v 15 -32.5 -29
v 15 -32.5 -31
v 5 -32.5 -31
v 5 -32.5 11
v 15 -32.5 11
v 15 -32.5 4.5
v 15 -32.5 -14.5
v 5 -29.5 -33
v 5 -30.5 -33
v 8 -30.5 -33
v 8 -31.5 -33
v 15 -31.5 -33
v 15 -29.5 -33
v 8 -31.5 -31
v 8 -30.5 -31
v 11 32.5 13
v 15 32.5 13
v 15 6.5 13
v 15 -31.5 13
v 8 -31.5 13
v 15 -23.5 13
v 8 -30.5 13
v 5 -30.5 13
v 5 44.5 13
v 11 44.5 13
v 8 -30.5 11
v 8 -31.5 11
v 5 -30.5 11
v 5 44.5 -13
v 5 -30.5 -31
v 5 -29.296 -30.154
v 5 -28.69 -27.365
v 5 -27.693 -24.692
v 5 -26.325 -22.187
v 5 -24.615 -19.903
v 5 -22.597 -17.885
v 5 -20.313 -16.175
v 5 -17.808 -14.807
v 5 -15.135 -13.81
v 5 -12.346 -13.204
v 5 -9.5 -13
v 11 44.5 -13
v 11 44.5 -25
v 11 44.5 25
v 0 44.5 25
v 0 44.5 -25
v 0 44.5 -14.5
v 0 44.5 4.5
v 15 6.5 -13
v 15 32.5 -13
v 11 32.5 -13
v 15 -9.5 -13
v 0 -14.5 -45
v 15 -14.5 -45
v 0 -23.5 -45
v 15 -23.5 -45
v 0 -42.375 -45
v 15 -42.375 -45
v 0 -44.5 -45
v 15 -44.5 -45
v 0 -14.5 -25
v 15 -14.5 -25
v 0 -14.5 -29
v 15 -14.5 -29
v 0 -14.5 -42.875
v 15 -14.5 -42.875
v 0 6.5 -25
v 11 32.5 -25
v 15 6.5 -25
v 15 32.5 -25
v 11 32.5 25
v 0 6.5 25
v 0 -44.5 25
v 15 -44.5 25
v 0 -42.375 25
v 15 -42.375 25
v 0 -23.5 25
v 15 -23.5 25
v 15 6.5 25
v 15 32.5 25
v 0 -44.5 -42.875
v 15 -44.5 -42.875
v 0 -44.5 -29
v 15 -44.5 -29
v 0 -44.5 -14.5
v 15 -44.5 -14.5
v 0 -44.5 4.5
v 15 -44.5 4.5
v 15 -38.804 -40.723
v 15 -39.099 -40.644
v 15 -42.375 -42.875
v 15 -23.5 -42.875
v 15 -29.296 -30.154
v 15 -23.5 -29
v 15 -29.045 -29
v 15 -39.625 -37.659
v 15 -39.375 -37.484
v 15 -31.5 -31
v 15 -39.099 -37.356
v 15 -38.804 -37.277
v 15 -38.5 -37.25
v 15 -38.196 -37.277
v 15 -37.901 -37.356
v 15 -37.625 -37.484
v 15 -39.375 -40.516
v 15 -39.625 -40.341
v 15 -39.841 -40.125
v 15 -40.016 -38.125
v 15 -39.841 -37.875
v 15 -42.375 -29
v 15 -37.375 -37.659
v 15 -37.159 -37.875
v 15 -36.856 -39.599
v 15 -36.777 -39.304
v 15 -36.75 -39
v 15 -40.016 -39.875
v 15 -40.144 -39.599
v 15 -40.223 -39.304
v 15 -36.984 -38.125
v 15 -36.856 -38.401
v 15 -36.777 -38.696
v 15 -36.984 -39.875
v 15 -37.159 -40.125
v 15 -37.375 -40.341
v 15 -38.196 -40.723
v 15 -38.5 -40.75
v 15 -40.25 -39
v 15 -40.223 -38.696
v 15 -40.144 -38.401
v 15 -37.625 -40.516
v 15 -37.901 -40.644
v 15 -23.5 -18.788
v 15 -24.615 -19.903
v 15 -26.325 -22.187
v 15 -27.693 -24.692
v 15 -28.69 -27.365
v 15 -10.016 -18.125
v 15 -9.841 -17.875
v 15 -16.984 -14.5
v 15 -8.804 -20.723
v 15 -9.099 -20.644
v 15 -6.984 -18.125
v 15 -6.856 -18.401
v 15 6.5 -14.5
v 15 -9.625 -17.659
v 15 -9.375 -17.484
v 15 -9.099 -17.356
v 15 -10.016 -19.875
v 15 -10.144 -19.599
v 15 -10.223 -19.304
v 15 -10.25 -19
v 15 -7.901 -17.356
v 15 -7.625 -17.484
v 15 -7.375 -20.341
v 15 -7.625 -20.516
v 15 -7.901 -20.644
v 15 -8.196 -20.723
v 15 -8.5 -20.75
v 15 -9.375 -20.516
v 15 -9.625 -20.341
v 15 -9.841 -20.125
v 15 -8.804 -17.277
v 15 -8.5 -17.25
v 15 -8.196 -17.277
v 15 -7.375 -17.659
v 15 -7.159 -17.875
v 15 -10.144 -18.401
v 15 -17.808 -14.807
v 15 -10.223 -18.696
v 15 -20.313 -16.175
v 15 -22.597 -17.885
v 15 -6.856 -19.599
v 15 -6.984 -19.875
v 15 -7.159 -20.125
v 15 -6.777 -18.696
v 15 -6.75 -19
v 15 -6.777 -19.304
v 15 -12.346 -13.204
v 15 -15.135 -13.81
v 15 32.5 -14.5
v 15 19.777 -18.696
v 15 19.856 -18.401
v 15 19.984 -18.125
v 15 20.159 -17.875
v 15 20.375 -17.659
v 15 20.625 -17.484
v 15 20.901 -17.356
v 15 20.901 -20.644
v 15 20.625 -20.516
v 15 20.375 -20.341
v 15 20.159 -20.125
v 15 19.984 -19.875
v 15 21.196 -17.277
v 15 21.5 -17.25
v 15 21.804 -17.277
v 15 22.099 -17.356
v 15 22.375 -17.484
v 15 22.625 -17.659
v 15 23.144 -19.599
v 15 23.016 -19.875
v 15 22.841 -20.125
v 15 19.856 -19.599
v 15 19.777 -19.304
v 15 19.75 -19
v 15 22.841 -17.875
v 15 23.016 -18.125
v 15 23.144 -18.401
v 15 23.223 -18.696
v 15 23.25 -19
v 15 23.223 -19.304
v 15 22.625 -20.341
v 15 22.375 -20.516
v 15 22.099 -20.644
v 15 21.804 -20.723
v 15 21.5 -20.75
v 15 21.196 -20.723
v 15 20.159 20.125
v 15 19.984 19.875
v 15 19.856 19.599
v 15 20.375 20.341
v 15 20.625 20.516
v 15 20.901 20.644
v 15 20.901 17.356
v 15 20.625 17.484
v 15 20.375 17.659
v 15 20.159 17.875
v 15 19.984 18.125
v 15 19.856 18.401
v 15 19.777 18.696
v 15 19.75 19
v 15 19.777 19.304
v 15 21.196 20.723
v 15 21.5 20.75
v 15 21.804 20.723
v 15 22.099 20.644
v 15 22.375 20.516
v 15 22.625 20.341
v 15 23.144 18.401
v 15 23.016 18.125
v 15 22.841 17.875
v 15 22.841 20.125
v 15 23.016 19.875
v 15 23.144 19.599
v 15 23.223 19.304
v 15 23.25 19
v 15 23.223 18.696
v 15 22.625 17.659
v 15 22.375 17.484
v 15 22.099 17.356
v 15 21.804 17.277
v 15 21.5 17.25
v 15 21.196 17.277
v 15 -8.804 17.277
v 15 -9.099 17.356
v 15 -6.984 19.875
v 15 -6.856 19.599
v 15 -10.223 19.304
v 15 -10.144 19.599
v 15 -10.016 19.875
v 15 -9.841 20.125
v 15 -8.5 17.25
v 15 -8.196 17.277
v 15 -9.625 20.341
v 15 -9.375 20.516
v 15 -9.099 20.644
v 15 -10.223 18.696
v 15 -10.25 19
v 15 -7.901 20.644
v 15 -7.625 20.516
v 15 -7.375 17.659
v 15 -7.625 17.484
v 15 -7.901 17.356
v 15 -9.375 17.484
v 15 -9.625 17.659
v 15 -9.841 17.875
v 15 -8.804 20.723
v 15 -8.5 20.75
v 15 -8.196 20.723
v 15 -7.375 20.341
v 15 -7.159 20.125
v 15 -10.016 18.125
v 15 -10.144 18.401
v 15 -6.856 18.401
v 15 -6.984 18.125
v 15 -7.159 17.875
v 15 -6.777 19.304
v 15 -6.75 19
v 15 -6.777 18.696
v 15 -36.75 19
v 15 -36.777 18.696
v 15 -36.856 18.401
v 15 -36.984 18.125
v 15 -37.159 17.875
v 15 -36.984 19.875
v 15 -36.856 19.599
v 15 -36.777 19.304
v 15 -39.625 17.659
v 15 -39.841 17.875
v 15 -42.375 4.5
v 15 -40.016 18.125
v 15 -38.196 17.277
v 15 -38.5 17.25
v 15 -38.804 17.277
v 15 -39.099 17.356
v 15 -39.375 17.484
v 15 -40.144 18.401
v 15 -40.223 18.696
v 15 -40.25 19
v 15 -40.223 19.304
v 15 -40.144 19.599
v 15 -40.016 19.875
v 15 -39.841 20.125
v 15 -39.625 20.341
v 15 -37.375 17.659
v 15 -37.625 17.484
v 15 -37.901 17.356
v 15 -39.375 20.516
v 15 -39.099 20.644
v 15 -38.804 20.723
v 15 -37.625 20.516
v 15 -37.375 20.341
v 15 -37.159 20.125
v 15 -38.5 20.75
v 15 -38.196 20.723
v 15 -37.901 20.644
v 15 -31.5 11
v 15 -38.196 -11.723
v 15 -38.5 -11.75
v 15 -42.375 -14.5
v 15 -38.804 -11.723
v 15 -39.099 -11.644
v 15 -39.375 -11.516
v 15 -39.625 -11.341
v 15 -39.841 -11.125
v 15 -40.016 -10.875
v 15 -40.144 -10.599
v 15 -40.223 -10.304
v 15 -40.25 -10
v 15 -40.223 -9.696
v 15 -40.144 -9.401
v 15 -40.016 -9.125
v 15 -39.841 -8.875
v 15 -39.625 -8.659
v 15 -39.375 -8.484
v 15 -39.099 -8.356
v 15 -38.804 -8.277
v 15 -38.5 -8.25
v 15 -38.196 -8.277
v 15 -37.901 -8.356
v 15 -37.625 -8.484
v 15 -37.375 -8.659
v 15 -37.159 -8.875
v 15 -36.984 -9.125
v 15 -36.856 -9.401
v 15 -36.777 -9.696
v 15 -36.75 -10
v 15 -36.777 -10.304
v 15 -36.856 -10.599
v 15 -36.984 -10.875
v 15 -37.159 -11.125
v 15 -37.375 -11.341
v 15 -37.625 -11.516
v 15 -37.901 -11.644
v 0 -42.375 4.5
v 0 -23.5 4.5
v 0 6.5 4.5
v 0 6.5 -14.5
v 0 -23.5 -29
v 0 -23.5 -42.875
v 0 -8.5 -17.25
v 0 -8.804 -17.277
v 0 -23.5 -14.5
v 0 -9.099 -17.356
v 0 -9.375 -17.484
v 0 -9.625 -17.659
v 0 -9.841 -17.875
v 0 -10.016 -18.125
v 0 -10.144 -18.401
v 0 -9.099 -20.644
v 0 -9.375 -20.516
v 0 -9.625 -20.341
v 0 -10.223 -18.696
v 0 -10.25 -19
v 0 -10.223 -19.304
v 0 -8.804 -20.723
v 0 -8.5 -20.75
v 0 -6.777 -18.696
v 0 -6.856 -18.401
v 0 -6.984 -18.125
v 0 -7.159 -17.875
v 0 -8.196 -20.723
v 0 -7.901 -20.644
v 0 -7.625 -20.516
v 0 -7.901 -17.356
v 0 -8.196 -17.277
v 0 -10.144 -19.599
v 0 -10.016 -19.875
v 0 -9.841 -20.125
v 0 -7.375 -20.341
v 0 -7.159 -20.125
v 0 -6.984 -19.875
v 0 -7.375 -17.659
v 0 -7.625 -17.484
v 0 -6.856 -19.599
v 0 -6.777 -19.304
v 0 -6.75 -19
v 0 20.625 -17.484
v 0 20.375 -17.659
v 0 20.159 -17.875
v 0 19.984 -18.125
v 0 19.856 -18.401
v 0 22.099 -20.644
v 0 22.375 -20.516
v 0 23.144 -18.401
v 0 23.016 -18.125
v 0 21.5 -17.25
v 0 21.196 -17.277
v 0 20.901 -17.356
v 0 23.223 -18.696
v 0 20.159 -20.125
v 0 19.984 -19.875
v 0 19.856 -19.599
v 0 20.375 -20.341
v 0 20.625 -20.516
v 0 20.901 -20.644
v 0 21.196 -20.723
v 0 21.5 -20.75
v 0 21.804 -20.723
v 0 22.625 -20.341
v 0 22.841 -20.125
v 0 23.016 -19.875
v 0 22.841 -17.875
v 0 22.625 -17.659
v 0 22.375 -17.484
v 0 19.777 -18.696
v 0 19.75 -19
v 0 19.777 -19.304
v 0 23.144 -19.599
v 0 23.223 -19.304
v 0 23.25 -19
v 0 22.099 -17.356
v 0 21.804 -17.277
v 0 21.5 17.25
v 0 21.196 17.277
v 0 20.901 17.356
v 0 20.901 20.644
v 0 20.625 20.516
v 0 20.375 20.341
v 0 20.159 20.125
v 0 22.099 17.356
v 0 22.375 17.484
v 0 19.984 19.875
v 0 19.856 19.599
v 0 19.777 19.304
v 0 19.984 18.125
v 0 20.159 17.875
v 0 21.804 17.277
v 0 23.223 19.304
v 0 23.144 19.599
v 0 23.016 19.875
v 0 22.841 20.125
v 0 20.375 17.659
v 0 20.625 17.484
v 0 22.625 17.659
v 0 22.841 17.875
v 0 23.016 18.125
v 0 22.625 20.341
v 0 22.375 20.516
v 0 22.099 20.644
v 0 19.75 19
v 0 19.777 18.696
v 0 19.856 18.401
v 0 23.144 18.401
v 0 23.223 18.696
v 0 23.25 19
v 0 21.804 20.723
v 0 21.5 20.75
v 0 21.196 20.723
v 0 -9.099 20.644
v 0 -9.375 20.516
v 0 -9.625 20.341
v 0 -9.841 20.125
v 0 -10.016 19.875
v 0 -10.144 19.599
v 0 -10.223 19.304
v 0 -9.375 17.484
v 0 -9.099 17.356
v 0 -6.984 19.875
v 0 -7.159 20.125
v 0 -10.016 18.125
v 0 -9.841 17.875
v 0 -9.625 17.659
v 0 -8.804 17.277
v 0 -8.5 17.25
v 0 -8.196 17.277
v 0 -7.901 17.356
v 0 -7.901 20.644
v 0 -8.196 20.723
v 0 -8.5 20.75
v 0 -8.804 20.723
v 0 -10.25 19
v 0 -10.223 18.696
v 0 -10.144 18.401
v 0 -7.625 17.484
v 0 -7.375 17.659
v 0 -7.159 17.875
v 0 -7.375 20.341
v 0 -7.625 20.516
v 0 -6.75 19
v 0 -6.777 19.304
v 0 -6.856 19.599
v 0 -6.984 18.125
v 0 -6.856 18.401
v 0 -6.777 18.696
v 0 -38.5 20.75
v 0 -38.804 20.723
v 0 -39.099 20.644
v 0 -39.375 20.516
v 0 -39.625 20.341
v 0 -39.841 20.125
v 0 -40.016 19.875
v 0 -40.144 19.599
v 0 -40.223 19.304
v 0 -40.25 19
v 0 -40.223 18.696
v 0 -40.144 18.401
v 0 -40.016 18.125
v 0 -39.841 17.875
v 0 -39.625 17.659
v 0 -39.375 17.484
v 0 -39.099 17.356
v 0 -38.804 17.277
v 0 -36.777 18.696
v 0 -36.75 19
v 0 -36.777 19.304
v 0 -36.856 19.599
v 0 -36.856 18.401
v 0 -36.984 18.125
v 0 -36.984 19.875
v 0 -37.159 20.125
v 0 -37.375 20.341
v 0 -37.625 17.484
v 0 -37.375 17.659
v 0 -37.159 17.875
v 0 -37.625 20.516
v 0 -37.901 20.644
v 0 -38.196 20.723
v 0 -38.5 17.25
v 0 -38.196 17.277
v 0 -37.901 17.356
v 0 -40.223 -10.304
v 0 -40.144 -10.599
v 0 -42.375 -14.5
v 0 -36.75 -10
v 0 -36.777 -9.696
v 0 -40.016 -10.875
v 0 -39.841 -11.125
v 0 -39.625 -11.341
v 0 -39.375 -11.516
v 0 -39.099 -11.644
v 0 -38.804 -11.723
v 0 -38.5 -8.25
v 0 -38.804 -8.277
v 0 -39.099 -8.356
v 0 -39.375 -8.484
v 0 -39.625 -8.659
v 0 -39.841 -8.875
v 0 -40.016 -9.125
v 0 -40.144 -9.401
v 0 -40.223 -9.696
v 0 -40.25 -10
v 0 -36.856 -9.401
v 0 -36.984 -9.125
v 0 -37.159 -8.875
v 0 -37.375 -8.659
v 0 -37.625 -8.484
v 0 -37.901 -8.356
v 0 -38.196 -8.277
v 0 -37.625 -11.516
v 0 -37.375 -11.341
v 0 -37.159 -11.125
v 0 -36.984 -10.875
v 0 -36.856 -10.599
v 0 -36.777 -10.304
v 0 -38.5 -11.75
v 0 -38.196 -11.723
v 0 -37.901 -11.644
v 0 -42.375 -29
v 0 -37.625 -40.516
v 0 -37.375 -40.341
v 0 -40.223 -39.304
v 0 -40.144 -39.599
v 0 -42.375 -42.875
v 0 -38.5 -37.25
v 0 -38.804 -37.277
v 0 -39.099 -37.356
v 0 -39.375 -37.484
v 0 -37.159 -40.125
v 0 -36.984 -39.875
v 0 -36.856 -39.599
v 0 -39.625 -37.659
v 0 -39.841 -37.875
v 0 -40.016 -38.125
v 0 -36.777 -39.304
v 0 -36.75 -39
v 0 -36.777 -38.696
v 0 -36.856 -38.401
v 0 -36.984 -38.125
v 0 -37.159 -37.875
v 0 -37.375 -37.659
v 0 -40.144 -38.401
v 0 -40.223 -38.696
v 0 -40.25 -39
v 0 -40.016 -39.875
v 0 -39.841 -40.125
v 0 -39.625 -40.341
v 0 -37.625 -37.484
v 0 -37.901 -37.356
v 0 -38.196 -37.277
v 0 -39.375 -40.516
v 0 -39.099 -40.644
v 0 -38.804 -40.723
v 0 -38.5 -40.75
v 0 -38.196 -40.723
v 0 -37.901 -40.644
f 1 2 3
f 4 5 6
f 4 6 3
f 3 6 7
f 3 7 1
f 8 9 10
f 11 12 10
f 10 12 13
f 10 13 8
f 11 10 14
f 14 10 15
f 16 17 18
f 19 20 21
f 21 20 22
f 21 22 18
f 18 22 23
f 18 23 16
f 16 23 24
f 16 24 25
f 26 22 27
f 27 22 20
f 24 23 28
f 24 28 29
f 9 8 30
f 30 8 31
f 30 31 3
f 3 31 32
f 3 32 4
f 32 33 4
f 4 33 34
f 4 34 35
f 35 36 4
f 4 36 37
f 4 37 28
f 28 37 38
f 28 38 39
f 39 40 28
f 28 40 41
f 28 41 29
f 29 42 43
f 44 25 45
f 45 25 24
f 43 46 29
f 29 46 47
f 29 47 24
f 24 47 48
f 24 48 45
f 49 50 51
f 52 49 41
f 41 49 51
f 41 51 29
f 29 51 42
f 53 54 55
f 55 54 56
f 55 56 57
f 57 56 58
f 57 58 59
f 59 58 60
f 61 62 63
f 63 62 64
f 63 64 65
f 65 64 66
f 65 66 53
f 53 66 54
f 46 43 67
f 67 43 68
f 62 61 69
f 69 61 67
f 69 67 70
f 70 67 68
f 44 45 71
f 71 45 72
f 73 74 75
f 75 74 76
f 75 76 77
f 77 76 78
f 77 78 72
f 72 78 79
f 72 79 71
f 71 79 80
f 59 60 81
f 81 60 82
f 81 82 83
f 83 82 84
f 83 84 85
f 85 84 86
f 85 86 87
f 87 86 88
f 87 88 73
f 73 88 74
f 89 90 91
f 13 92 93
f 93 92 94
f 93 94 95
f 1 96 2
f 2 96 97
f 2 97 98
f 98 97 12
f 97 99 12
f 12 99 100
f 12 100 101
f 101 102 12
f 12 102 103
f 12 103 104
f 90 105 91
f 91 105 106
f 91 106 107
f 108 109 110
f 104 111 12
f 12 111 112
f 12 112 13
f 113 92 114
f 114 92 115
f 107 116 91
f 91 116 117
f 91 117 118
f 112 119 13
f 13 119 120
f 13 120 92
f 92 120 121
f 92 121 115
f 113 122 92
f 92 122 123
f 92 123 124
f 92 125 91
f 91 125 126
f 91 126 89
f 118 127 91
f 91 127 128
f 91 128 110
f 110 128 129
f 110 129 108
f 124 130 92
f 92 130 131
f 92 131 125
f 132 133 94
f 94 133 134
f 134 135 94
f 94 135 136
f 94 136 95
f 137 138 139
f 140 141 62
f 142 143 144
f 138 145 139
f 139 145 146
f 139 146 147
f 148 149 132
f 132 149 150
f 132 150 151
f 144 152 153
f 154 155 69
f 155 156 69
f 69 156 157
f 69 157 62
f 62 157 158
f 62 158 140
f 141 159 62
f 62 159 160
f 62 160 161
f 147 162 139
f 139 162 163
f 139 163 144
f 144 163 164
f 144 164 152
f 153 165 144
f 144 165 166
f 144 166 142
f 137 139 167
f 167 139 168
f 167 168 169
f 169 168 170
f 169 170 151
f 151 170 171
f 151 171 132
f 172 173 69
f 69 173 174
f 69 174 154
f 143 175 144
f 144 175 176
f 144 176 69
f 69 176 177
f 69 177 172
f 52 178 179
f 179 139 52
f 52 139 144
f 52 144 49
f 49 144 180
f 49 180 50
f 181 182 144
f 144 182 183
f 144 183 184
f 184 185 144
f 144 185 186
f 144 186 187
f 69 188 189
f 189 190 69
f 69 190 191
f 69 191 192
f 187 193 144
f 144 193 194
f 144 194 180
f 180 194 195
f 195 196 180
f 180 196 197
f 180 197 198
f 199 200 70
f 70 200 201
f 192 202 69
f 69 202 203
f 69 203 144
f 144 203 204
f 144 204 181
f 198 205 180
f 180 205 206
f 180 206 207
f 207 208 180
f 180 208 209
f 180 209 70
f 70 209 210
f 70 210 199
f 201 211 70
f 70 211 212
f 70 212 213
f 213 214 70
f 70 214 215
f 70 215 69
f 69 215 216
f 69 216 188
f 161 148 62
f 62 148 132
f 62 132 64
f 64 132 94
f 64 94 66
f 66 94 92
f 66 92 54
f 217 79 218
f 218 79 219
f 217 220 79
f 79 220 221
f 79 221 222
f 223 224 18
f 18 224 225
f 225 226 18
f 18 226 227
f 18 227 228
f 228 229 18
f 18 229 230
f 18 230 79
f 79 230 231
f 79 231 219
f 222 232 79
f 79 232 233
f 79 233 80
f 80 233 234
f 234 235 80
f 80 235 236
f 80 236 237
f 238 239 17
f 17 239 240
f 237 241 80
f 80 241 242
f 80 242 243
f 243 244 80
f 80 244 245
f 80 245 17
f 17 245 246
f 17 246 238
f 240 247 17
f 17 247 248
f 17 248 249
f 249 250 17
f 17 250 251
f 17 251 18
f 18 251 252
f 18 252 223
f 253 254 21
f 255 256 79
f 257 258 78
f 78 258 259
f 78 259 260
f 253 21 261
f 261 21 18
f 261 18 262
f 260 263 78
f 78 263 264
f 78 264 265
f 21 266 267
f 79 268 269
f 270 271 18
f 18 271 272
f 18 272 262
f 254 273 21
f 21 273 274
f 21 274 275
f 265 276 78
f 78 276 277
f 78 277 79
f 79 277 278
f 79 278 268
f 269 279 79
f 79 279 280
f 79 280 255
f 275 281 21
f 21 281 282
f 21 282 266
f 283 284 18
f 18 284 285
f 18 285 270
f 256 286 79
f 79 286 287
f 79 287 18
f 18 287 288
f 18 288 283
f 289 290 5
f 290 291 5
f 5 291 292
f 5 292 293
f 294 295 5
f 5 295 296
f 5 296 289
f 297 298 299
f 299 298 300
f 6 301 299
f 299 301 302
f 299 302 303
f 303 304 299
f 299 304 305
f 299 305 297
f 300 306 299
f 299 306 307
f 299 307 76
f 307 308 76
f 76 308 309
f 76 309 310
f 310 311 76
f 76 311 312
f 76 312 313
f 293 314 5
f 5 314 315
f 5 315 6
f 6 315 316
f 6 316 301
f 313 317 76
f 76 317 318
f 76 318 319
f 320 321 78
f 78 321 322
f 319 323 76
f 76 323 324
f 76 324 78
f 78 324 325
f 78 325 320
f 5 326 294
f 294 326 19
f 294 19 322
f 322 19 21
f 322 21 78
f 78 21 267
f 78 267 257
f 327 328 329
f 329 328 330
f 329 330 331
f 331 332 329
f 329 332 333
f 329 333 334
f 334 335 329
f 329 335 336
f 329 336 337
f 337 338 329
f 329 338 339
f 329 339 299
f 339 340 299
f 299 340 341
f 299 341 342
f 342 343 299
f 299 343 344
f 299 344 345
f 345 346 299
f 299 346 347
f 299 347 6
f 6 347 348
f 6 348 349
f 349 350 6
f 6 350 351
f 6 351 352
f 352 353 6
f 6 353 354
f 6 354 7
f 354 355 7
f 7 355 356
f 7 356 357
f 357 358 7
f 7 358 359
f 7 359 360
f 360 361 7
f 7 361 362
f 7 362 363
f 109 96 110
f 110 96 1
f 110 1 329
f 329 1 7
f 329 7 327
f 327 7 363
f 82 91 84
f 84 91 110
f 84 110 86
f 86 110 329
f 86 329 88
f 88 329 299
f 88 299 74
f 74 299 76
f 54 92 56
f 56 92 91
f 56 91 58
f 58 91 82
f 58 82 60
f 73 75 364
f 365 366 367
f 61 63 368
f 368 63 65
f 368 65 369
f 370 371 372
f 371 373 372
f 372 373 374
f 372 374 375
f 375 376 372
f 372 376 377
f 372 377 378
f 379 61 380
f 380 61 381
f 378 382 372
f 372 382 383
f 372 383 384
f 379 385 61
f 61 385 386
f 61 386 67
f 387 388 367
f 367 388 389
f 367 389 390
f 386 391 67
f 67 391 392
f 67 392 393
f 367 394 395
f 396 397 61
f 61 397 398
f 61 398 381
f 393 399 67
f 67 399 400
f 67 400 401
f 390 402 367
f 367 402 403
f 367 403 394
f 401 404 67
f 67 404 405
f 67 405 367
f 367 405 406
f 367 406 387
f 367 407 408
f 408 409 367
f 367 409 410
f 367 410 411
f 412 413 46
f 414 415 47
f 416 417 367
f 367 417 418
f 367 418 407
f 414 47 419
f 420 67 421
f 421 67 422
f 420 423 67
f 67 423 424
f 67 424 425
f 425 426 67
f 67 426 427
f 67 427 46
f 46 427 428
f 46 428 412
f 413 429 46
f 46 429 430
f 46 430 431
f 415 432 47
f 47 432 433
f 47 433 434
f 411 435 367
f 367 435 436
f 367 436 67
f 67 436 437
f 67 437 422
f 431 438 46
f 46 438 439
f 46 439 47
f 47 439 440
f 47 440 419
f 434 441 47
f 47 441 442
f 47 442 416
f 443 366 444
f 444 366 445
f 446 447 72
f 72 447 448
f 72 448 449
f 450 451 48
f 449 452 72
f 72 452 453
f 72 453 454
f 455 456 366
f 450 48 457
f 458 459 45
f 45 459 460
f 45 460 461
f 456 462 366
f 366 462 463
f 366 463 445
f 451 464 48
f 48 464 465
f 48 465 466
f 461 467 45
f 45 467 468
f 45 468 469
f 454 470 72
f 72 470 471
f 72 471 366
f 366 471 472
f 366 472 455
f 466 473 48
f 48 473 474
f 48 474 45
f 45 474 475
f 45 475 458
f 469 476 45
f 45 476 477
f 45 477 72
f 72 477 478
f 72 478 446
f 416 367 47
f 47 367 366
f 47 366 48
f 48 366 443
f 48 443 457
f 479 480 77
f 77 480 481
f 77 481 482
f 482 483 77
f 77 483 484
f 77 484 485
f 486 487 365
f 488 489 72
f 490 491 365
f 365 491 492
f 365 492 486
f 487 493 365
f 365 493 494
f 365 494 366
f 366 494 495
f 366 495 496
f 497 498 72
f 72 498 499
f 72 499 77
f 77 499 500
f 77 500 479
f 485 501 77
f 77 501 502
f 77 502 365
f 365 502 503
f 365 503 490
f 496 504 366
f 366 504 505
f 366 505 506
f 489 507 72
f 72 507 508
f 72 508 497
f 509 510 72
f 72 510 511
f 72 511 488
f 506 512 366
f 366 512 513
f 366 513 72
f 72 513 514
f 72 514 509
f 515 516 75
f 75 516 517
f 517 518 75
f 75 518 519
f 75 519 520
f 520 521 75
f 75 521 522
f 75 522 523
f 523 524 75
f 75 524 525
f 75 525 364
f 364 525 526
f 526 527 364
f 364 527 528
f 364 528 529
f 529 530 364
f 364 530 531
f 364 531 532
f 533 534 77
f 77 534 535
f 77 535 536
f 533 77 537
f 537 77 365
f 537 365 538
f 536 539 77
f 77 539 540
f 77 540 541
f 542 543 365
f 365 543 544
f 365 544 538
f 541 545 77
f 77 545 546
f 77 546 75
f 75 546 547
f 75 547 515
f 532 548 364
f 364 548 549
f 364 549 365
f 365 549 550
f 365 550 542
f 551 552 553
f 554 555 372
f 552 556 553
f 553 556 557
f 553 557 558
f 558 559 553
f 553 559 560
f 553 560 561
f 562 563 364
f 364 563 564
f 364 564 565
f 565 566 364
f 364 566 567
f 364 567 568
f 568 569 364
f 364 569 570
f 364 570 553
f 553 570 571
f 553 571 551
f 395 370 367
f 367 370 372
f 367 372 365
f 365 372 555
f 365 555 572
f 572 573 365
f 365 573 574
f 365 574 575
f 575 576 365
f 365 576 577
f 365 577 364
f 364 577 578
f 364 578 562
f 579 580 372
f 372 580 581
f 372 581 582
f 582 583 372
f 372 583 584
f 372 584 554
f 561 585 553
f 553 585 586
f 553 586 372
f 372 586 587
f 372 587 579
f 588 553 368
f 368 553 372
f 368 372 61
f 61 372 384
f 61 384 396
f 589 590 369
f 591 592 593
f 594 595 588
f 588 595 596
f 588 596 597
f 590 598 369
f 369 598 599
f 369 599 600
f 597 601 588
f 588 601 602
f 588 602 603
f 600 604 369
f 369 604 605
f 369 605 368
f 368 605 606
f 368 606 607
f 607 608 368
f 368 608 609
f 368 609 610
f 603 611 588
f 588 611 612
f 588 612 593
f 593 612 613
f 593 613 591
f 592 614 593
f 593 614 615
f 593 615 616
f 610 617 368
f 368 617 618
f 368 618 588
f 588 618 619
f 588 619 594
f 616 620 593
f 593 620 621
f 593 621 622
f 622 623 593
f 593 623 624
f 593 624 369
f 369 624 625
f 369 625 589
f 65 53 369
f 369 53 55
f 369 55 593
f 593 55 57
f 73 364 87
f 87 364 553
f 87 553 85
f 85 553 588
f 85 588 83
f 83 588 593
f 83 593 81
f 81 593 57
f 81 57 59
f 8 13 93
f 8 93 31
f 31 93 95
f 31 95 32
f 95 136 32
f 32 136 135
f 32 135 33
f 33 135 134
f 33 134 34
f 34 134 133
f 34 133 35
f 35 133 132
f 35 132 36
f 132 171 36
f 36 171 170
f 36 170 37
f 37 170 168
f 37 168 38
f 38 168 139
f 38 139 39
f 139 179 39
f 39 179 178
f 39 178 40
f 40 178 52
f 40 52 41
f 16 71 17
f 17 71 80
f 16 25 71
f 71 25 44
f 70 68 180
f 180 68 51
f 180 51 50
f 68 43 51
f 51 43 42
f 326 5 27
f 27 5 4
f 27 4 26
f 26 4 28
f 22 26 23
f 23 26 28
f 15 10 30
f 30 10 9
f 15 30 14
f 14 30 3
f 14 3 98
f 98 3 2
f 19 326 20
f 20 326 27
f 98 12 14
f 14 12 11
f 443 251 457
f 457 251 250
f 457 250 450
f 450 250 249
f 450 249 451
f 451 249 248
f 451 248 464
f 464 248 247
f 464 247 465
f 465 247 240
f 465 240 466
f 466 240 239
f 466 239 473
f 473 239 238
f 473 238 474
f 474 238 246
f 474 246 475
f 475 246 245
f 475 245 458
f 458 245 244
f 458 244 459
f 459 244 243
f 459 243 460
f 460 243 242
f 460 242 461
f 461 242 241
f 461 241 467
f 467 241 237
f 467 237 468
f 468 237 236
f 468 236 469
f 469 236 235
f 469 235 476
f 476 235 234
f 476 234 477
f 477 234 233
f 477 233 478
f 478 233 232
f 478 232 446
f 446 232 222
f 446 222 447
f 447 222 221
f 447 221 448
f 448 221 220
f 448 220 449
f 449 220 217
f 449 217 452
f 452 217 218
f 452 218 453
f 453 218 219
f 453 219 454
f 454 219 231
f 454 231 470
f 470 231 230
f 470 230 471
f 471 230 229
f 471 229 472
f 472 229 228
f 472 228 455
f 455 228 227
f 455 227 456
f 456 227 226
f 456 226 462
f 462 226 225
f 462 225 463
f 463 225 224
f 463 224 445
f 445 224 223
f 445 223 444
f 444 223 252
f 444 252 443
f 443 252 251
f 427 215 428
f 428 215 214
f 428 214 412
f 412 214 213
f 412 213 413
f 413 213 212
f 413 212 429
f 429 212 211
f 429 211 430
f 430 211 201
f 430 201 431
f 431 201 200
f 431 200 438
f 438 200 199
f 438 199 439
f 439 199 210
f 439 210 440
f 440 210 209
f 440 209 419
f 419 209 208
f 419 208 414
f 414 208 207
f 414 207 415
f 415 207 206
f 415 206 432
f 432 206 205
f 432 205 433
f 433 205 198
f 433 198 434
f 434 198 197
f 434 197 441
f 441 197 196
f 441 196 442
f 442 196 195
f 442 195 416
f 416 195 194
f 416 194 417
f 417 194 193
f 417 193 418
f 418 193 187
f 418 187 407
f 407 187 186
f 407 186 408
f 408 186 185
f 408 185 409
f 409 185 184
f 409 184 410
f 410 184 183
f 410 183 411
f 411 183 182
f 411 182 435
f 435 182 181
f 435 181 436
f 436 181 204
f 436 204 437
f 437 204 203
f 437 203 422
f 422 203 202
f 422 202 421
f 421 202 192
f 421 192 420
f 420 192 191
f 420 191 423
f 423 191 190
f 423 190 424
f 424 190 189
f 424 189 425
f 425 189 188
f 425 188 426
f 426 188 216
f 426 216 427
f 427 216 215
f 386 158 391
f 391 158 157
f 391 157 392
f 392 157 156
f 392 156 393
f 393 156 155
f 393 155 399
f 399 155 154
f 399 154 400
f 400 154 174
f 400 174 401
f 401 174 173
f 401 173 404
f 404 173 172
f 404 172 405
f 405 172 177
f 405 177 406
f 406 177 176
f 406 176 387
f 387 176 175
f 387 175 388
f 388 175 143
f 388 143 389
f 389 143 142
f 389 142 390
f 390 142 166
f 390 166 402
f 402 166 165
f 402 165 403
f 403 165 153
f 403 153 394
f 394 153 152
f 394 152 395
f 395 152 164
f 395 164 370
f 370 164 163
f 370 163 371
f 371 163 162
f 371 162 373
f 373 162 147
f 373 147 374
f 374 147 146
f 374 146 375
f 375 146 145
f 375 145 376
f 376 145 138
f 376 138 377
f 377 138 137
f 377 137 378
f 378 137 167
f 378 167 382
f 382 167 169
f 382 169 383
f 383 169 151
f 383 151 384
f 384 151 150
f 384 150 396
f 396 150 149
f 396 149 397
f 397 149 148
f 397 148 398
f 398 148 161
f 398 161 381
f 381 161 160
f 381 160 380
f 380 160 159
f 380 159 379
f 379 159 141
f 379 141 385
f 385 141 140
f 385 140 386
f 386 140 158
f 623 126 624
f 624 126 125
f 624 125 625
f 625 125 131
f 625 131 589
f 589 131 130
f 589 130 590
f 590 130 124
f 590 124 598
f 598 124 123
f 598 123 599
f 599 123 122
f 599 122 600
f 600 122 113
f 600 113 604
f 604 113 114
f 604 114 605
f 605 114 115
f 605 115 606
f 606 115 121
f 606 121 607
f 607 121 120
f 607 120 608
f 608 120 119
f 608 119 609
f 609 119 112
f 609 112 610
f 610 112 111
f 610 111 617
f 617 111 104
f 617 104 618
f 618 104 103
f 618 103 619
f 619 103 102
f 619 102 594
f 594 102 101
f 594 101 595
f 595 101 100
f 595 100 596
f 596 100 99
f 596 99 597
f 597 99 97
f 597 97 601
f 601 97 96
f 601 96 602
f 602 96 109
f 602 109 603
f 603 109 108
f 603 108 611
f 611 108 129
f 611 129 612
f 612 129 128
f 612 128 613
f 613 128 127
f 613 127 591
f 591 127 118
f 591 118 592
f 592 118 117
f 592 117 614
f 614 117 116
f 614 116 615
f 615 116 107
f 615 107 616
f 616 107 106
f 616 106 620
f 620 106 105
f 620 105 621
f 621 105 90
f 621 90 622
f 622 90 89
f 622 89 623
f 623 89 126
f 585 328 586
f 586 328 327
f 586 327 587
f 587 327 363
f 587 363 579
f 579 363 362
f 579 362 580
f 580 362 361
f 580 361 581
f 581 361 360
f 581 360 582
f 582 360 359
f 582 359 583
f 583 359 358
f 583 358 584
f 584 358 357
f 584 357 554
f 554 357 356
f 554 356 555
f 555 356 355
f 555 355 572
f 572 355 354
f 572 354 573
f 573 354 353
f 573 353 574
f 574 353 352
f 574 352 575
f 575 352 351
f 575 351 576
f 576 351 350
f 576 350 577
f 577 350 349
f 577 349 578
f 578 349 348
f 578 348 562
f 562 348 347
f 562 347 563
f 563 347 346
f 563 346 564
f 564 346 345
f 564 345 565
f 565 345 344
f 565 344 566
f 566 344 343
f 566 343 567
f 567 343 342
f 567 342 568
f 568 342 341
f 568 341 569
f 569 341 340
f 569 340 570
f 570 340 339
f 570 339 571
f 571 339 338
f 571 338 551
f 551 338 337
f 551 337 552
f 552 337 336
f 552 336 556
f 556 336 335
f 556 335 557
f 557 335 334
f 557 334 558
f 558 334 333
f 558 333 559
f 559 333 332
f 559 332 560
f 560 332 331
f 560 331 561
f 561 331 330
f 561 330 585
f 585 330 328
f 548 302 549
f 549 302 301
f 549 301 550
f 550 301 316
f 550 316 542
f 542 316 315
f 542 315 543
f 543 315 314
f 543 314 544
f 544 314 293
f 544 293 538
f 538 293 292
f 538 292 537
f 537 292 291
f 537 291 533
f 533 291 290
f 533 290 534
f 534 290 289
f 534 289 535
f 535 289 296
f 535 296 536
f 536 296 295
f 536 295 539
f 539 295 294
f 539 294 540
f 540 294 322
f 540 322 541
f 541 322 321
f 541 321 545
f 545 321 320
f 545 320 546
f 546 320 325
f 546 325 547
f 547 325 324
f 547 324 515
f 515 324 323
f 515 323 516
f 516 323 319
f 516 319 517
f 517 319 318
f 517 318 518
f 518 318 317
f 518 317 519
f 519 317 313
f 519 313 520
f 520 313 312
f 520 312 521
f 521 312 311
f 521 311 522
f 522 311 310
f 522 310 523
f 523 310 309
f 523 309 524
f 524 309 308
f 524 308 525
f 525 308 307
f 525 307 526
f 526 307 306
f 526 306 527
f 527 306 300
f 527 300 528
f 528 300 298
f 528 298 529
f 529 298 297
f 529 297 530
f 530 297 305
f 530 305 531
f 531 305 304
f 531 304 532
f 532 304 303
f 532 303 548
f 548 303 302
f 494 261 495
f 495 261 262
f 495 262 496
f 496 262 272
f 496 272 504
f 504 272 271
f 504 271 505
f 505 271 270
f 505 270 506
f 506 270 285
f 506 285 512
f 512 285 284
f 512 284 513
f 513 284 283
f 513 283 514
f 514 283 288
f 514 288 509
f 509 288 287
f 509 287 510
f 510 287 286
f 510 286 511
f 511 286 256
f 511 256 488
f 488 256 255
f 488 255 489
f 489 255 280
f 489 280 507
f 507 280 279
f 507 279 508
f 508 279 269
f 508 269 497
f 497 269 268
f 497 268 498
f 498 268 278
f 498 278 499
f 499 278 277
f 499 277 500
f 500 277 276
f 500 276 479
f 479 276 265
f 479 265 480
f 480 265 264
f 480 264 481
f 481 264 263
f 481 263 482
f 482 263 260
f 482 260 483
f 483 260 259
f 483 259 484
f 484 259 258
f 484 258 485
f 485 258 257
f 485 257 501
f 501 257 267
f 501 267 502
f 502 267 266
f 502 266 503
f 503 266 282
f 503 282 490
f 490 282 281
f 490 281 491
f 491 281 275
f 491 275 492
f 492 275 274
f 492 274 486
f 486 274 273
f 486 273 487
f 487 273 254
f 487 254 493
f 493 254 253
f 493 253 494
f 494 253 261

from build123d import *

# Parameters (mm, degrees)
EXTRUDE_2_DEPTH     = 15
SKETCH_4_W          = 26
SKETCH_4_H          = 77
CUT_EXTRUDE_3_DEPTH = 10
CUT_EXTRUDE_5_DEPTH = 10
SKETCH_6_W          = 12
SKETCH_6_H          = 12
CUT_EXTRUDE_6_DEPTH = 4
SKETCH_7_W          = 2
SKETCH_7_H          = 2
EXTRUDE_5_DEPTH     = 3
SKETCH_8_W          = 2
SKETCH_8_H          = 1
EXTRUDE_6_DEPTH     = 7
SKETCH_9_R          = 1.75
CUT_EXTRUDE_7_DEPTH = 16


with BuildPart() as part:
    # ｽｹｯﾁ1 → ﾎﾞｽ - 押し出し2 (new body)
    with BuildSketch(Plane(origin=(0, 0, 0), x_dir=(0, 0, -1), z_dir=(1, 0, 0))):
        Polygon((25, 44.5), (25, -14.5), (45, -14.5), (45, -44.5), (25, -44.5), (-25, -44.5), (-25, 44.5), align=None)
    extrude(amount=EXTRUDE_2_DEPTH)

    # ｽｹｯﾁ4 → ｶｯﾄ - 押し出し3 (cut)
    with BuildSketch(Plane(origin=(15, 0, 0), x_dir=(0, 0, -1), z_dir=(1, 0, 0))):
        with Locations((0, 6)):
            Rectangle(SKETCH_4_W, SKETCH_4_H)
    extrude(amount=-CUT_EXTRUDE_3_DEPTH, mode=Mode.SUBTRACT)

    # ｽｹｯﾁ5 → ｶｯﾄ - 押し出し5 (cut)
    with BuildSketch(Plane(origin=(15, 0, 0), x_dir=(0, 0, -1), z_dir=(1, 0, 0))):
        with BuildLine():
            Line((13, -32.5), (13, -9.5))
            ThreePointArc((13, -9.5), (18.857864376, -23.642135624), (33, -29.5))
            Line((33, -29.5), (33, -32.5))
            Line((33, -32.5), (13, -32.5))
        make_face()
    extrude(amount=-CUT_EXTRUDE_5_DEPTH, mode=Mode.SUBTRACT)

    # ｽｹｯﾁ6 → ｶｯﾄ - 押し出し6 (cut)
    with BuildSketch(Plane(origin=(15, 0, 0), x_dir=(0, 0, -1), z_dir=(1, 0, 0))):
        with Locations((-19, 38.5)):
            Rectangle(SKETCH_6_W, SKETCH_6_H)
        with Locations((19, 38.5)):
            Rectangle(SKETCH_6_W, SKETCH_6_H)
    extrude(amount=-CUT_EXTRUDE_6_DEPTH, mode=Mode.SUBTRACT)

    # ｽｹｯﾁ7 → ﾎﾞｽ - 押し出し5 (add)
    with BuildSketch(Plane(origin=(5, 0, 0), x_dir=(0, 0, -1), z_dir=(1, 0, 0))):
        with Locations((-12, -31.5)):
            Rectangle(SKETCH_7_W, SKETCH_7_H)
        with Locations((32, -31.5)):
            Rectangle(SKETCH_7_W, SKETCH_7_H)
    extrude(amount=EXTRUDE_5_DEPTH)

    # ｽｹｯﾁ8 → ﾎﾞｽ - 押し出し6 (add)
    with BuildSketch(Plane(origin=(8, 0, 0), x_dir=(0, 0, -1), z_dir=(1, 0, 0))):
        with Locations((-12, -32)):
            Rectangle(SKETCH_8_W, SKETCH_8_H)
        with Locations((32, -32)):
            Rectangle(SKETCH_8_W, SKETCH_8_H)
    extrude(amount=EXTRUDE_6_DEPTH)

    # ｽｹｯﾁ9 → ｶｯﾄ - 押し出し7 (cut, through all)
    with BuildSketch(Plane(origin=(15, 0, 0), x_dir=(0, 0, -1), z_dir=(1, 0, 0))):
        with Locations((-19, 21.5)):
            Circle(SKETCH_9_R)
        with Locations((-19, -8.5)):
            Circle(SKETCH_9_R)
        with Locations((-19, -38.5)):
            Circle(SKETCH_9_R)
        with Locations((10, -38.5)):
            Circle(SKETCH_9_R)
        with Locations((39, -38.5)):
            Circle(SKETCH_9_R)
        with Locations((19, -8.5)):
            Circle(SKETCH_9_R)
        with Locations((19, 21.5)):
            Circle(SKETCH_9_R)
    extrude(amount=-CUT_EXTRUDE_7_DEPTH, mode=Mode.SUBTRACT)


solid = part.part
